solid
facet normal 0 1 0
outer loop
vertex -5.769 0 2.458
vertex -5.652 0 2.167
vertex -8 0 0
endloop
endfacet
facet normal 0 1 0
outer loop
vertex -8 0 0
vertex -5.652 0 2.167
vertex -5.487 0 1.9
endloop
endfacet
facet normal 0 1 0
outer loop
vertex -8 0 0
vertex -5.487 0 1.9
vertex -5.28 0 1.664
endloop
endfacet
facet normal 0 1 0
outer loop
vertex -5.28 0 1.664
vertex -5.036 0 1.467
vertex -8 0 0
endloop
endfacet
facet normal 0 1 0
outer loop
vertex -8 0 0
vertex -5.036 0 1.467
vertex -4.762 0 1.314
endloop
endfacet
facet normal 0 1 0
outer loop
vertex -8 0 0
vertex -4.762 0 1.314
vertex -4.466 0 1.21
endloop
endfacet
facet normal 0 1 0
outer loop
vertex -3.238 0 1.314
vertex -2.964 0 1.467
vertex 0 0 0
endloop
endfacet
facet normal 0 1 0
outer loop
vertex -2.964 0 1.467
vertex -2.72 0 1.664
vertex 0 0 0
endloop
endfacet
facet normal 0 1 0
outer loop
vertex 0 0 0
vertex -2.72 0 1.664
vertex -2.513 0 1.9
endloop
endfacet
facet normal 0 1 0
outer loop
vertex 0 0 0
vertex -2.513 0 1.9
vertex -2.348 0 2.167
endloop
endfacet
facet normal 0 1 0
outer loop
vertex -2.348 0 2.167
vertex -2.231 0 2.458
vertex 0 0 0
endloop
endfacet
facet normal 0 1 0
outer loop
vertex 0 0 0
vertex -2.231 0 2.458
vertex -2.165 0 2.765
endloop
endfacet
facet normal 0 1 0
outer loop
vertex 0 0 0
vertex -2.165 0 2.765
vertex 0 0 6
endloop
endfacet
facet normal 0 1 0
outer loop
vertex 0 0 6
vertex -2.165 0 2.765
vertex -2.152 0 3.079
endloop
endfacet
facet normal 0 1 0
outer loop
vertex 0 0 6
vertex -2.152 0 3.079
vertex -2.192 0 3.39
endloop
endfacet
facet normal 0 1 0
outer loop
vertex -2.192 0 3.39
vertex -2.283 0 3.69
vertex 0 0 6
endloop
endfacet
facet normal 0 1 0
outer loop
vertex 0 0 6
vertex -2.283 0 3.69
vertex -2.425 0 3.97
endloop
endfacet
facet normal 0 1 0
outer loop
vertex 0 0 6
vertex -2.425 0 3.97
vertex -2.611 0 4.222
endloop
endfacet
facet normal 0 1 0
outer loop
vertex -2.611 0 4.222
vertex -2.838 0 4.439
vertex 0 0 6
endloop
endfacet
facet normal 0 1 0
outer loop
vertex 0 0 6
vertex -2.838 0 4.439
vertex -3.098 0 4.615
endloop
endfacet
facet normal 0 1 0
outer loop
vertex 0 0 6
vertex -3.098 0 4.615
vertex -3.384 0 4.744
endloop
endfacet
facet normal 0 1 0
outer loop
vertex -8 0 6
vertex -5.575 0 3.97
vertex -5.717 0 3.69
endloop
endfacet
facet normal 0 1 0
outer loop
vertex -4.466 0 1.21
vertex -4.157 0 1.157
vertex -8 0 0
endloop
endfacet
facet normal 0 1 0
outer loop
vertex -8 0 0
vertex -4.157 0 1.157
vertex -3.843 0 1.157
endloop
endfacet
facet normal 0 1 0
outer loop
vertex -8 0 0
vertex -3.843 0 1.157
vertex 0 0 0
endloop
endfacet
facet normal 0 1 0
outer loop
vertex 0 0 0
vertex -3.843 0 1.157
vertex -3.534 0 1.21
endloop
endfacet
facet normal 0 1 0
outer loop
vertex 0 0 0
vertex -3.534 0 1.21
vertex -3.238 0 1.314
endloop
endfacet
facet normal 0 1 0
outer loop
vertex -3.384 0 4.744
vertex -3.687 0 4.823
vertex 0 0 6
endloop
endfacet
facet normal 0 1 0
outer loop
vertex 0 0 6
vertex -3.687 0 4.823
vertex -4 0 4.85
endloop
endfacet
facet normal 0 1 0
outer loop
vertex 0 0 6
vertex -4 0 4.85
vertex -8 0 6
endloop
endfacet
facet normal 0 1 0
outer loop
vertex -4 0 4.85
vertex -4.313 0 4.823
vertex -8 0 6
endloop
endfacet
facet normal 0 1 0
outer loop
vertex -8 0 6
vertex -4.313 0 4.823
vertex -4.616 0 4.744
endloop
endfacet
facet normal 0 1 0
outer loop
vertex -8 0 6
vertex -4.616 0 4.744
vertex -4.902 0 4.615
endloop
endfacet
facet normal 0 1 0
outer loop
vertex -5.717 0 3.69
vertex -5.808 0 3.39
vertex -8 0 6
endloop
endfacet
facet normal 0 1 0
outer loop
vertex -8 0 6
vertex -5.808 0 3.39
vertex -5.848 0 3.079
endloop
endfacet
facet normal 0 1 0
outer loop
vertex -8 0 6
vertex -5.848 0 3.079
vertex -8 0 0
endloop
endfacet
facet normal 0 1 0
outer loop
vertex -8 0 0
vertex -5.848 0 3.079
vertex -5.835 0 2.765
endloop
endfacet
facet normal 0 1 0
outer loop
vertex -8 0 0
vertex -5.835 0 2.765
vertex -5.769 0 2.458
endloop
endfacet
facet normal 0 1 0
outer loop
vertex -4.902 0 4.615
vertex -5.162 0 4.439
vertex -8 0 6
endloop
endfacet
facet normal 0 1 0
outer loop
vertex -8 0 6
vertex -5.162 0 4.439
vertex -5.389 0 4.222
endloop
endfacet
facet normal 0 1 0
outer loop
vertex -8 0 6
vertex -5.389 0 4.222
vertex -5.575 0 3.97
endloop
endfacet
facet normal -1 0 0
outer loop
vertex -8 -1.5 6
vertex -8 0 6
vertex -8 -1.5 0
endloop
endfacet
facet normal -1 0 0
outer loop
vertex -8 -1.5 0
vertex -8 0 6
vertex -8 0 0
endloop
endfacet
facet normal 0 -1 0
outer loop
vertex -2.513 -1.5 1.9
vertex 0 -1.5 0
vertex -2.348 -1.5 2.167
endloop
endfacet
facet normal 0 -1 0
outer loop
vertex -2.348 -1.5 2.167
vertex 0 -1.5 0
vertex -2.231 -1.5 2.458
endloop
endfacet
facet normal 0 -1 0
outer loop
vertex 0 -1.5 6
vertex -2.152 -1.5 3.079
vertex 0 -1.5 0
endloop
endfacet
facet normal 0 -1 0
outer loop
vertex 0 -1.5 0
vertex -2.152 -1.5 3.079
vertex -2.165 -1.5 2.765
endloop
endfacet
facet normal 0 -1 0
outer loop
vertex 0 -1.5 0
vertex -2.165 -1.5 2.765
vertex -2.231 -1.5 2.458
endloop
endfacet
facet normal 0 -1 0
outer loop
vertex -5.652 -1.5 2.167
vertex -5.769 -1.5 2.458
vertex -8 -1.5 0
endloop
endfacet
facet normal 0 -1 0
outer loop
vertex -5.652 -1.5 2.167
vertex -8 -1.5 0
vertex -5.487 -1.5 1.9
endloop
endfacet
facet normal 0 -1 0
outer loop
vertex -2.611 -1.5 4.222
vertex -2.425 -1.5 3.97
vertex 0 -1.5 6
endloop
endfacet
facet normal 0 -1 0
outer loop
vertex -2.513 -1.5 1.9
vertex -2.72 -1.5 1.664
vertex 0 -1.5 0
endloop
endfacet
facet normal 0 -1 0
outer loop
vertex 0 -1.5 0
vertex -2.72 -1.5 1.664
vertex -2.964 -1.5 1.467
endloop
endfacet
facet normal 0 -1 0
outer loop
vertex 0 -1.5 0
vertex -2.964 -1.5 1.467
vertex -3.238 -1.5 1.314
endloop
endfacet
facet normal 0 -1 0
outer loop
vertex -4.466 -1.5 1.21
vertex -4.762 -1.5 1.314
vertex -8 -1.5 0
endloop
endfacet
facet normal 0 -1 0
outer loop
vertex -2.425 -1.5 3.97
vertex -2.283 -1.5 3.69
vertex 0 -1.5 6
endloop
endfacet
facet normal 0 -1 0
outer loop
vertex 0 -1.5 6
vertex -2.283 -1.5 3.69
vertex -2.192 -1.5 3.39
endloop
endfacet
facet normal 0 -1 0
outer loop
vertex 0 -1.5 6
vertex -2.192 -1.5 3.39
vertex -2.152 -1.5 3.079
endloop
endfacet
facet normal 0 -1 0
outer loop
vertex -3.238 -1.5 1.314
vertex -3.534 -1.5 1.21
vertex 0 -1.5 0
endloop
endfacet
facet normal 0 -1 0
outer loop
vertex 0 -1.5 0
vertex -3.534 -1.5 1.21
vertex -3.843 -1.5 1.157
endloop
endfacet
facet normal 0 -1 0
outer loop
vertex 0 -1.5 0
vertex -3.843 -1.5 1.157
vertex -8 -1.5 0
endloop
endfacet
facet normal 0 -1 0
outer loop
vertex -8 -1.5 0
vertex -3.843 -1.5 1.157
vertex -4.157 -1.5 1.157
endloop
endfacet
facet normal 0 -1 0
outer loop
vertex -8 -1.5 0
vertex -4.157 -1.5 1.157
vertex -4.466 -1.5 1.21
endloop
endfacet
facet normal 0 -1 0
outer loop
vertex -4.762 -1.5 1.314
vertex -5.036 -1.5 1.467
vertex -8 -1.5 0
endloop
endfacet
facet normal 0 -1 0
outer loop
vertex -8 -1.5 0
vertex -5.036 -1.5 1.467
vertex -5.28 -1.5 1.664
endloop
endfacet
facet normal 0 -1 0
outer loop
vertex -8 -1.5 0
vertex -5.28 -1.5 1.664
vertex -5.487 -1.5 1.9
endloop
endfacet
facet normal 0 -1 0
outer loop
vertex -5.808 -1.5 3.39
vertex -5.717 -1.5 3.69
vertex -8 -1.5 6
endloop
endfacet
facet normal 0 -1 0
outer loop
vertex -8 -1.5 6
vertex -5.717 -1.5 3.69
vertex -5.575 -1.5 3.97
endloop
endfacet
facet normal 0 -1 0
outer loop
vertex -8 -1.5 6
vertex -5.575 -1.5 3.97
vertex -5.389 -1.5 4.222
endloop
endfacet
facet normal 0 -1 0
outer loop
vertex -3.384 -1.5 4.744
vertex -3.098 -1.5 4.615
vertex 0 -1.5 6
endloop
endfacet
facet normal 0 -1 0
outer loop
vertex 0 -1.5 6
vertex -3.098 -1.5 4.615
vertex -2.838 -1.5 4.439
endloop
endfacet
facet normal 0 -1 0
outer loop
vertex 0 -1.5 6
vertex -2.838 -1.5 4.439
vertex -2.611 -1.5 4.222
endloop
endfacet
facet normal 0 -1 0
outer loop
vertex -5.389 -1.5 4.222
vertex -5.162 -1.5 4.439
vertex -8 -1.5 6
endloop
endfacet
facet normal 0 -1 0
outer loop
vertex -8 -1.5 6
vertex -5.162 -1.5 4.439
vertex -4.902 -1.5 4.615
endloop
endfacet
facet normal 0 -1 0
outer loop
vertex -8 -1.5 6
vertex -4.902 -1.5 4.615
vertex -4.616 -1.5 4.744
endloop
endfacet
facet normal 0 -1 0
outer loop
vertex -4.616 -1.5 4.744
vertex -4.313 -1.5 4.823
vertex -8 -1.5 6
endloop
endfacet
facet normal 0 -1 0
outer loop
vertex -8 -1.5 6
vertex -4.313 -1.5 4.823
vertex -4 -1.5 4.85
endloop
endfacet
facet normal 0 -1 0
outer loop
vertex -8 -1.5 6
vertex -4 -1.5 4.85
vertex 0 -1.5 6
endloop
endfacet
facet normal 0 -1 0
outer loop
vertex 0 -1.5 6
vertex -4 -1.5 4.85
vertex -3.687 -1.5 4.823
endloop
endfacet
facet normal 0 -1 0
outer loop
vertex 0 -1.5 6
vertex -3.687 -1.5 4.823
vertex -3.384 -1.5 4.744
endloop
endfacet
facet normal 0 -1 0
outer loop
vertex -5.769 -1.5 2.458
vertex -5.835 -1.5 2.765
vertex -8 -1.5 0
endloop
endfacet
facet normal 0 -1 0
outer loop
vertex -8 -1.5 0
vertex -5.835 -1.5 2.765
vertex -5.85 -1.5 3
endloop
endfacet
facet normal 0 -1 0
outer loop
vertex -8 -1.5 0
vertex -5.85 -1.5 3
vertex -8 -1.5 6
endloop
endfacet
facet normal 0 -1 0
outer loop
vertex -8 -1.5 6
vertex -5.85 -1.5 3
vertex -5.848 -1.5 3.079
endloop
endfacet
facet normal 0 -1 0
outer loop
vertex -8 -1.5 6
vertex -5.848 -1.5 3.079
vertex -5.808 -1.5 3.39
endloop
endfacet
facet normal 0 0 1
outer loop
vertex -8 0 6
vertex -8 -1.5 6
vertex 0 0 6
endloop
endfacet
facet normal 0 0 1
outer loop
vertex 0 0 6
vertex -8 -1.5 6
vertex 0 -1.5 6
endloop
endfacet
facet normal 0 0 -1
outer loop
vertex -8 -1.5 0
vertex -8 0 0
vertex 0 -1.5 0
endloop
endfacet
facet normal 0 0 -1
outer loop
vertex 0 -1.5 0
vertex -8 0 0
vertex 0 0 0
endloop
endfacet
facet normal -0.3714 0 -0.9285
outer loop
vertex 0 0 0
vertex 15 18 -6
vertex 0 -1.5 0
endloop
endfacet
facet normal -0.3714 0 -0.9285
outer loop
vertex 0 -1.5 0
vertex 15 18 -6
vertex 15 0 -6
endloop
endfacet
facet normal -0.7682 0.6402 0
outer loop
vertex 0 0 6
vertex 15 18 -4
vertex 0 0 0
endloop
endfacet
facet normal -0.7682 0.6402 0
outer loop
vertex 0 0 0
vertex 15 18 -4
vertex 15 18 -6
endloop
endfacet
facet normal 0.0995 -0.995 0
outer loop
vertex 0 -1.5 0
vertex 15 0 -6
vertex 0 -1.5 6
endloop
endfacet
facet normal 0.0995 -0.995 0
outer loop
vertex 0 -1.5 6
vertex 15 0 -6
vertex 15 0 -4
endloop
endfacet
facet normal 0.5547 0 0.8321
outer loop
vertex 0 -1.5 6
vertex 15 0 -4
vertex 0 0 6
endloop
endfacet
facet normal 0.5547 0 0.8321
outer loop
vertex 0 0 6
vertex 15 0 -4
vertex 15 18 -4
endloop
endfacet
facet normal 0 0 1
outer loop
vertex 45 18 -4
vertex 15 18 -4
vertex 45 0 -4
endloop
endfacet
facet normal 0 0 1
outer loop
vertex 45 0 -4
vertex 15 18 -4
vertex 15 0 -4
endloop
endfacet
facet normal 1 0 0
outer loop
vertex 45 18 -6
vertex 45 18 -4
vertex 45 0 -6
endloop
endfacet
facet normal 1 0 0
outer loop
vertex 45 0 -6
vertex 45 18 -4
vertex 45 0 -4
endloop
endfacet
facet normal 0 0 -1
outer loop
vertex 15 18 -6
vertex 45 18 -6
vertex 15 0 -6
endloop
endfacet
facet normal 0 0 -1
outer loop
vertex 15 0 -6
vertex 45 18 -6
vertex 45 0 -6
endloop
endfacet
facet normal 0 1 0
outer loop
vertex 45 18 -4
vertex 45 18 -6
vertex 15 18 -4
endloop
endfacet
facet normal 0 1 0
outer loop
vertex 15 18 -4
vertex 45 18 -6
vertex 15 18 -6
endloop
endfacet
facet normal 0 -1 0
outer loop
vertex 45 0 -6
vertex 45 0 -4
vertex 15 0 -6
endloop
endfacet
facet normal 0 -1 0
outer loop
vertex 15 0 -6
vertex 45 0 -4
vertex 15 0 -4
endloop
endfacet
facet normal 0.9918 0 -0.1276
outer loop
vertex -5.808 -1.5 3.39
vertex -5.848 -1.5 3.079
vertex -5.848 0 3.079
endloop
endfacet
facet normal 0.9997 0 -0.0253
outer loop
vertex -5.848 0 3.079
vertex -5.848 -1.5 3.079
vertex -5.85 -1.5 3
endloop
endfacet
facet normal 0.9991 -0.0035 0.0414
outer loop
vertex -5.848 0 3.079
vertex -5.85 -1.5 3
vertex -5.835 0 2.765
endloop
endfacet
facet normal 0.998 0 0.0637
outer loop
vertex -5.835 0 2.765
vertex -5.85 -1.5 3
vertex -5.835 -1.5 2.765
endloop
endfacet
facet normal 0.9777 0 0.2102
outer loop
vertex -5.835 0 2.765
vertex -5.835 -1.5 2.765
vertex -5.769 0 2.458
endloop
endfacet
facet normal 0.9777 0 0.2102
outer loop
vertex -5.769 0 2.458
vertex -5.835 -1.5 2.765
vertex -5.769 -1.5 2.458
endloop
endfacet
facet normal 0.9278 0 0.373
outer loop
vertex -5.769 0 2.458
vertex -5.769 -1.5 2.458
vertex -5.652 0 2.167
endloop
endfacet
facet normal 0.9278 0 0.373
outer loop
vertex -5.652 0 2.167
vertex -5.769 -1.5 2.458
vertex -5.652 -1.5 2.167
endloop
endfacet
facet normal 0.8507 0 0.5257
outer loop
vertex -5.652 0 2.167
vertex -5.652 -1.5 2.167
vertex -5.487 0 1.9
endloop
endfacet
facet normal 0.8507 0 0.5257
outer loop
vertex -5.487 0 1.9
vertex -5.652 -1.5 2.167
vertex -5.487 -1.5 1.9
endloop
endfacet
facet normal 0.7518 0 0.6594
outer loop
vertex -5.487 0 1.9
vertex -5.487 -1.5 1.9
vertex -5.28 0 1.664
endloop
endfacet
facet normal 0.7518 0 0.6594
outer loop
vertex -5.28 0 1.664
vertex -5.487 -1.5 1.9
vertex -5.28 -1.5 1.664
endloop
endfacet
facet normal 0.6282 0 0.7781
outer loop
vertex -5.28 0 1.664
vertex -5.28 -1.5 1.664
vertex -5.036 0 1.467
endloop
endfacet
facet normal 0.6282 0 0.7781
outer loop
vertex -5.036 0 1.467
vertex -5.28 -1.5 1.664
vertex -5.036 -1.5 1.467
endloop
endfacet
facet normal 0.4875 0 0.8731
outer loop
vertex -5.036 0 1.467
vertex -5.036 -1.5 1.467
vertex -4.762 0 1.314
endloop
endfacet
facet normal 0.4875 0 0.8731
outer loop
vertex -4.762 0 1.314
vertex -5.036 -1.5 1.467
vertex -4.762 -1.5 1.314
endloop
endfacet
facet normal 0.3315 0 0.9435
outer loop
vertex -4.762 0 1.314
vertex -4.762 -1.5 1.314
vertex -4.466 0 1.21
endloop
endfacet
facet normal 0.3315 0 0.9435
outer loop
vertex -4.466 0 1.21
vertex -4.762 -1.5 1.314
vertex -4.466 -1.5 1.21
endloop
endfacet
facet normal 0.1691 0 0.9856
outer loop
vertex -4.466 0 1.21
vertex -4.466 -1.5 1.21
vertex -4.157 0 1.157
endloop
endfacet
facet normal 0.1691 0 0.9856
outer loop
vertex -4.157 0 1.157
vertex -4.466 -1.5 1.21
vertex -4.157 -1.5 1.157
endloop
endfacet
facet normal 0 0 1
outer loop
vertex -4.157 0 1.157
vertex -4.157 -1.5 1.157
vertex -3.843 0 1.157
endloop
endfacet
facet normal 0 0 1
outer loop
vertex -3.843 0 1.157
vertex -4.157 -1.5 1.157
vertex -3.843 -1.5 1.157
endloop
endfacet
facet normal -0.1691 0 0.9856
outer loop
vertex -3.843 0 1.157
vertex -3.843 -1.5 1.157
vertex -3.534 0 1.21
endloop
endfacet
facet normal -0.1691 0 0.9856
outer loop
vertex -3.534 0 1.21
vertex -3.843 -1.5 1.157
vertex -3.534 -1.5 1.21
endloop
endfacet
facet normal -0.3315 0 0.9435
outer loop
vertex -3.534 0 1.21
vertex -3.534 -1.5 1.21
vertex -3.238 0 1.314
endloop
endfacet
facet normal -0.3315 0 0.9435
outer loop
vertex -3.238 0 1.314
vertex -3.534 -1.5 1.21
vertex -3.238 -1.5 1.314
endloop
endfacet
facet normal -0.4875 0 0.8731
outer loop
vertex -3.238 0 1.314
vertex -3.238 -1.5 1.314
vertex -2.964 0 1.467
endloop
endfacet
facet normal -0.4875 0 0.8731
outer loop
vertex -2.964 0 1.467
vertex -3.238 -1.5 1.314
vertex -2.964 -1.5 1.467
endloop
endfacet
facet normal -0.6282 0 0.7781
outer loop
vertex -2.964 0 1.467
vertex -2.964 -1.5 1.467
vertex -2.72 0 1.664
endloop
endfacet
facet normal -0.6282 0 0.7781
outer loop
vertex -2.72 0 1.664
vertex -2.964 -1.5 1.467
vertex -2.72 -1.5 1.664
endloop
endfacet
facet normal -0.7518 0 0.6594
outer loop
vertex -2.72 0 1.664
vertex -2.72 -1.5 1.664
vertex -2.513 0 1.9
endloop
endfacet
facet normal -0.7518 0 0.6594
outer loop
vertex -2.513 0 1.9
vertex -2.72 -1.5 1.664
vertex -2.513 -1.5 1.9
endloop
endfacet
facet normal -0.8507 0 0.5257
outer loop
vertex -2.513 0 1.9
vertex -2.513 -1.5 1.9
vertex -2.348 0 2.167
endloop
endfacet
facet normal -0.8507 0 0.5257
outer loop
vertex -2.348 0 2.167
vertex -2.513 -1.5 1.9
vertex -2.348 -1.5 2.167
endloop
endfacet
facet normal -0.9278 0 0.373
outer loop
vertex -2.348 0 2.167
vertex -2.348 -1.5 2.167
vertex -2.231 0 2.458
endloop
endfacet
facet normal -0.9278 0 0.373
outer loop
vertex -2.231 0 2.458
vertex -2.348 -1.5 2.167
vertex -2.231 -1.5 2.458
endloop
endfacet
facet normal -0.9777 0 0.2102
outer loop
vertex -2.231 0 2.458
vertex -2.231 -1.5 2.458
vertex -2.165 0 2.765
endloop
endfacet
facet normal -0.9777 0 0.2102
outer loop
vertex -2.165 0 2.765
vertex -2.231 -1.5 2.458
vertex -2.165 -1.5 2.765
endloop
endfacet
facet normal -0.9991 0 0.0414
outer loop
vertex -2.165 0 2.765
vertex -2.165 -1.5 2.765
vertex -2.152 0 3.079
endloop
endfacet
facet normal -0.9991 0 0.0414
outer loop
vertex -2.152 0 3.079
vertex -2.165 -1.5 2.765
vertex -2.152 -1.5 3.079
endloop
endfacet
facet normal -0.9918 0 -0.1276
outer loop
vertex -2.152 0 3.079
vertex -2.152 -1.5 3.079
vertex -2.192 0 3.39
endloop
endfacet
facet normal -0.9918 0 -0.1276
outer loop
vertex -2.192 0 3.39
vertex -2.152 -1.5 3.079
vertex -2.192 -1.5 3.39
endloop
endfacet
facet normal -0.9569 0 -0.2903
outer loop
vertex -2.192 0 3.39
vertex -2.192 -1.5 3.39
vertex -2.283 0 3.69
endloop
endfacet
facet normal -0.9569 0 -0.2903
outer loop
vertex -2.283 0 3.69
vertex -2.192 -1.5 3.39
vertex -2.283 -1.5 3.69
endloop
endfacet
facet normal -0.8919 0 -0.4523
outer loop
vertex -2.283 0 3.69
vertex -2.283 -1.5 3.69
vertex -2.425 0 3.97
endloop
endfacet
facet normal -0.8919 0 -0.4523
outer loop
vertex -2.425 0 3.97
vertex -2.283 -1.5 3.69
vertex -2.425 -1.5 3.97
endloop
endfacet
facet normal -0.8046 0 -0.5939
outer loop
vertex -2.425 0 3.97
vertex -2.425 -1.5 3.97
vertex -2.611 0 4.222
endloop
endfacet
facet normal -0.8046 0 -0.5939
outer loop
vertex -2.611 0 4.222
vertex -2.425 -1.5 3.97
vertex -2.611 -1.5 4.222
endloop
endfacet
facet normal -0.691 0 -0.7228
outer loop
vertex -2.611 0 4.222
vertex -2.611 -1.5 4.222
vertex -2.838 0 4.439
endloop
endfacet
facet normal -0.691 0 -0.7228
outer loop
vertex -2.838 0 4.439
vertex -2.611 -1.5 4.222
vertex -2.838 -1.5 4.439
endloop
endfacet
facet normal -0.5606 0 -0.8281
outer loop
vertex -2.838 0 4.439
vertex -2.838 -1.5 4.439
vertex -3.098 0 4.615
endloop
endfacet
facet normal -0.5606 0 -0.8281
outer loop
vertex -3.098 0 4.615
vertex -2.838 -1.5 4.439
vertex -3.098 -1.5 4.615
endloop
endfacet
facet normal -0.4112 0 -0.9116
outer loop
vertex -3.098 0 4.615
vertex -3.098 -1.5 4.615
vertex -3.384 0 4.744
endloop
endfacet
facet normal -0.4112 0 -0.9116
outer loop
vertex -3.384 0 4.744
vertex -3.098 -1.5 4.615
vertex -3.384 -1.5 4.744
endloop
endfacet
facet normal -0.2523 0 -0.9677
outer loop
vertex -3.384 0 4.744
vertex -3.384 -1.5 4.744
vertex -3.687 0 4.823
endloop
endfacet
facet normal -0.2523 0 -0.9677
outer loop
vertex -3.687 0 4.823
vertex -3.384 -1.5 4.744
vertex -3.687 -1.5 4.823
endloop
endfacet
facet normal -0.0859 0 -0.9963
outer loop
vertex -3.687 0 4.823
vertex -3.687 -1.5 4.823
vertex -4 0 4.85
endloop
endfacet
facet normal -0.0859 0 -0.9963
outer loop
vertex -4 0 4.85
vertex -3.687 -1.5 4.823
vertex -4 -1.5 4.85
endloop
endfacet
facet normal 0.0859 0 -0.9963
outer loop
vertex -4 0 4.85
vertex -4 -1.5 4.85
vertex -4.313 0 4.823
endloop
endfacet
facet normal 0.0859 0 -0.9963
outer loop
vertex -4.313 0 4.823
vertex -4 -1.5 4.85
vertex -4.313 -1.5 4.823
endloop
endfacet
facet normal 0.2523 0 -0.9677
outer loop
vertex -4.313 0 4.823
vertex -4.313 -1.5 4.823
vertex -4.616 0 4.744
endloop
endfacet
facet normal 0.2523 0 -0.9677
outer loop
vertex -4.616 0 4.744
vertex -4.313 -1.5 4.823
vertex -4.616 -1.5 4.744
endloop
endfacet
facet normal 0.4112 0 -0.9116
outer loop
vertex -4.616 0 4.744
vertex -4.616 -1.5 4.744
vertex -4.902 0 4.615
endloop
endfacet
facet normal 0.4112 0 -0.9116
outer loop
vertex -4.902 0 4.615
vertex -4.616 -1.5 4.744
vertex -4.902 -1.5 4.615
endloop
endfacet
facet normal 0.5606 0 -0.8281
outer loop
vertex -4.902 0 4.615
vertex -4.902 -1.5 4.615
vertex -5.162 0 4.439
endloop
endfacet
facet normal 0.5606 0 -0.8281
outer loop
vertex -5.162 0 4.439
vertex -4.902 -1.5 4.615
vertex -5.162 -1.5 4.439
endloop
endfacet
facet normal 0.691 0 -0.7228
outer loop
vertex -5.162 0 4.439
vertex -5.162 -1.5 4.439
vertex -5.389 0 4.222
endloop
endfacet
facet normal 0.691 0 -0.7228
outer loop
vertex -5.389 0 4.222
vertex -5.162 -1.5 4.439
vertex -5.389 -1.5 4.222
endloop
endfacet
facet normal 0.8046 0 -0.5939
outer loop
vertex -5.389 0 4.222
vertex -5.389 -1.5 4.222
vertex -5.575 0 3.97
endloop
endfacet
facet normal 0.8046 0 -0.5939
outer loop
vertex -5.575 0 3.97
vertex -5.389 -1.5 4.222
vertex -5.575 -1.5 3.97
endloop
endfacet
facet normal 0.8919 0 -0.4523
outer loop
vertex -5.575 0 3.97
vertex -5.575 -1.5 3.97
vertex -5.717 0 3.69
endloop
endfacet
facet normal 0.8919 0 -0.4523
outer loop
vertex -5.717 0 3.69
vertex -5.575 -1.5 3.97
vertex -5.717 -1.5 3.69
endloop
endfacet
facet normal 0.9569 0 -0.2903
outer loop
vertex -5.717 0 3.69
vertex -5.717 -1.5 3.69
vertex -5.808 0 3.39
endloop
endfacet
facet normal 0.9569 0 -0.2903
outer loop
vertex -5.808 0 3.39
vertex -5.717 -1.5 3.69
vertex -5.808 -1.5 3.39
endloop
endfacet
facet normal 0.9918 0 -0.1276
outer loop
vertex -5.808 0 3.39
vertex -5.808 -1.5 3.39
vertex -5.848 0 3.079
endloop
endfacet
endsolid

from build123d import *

# Parameters (mm, degrees)
SKETCH_1_W          = 8
SKETCH_1_H          = 1.5
EXTRUDE_1_DEPTH     = 6
SKETCH_2_W          = 30
SKETCH_2_H          = 2
EXTRUDE_2_DEPTH     = 18
SKETCH_3_R          = 1.85
CUT_EXTRUDE_1_DEPTH = 6


with BuildPart() as part:
    # 草图1 → 凸台-拉伸1 (new body)
    with BuildSketch(Plane.XY):
        with Locations((-4, -0.75)):
            Rectangle(SKETCH_1_W, SKETCH_1_H)
    extrude(amount=EXTRUDE_1_DEPTH)


with BuildPart() as body_2:
    # 草图2 → 凸台-拉伸2 (new body)
    with BuildSketch(Plane(origin=(0, 0, 0), x_dir=(1, 0, 0), z_dir=(0, 1, 0))):
        with Locations((30, 5)):
            Rectangle(SKETCH_2_W, SKETCH_2_H)
    extrude(amount=EXTRUDE_2_DEPTH)


    add(part.part)  # loft_1 joins it to this body
    # loft from a face of the part (loft_1)
    loft([body_2.faces().sort_by_distance((15, 9, -5))[0], body_2.faces().sort_by_distance((0, -0.75, 3))[0]])

    # 草图3 → 切除-拉伸1 (cut)
    with BuildSketch(Plane(origin=(0, 0, 0), x_dir=(1, 0, 0), z_dir=(0, 1, 0))):
        with Locations(Location((-4, -3, 0), (0, 0, 270))):
            Circle(SKETCH_3_R)
    extrude(amount=-CUT_EXTRUDE_1_DEPTH, mode=Mode.SUBTRACT)


solid = body_2.part
